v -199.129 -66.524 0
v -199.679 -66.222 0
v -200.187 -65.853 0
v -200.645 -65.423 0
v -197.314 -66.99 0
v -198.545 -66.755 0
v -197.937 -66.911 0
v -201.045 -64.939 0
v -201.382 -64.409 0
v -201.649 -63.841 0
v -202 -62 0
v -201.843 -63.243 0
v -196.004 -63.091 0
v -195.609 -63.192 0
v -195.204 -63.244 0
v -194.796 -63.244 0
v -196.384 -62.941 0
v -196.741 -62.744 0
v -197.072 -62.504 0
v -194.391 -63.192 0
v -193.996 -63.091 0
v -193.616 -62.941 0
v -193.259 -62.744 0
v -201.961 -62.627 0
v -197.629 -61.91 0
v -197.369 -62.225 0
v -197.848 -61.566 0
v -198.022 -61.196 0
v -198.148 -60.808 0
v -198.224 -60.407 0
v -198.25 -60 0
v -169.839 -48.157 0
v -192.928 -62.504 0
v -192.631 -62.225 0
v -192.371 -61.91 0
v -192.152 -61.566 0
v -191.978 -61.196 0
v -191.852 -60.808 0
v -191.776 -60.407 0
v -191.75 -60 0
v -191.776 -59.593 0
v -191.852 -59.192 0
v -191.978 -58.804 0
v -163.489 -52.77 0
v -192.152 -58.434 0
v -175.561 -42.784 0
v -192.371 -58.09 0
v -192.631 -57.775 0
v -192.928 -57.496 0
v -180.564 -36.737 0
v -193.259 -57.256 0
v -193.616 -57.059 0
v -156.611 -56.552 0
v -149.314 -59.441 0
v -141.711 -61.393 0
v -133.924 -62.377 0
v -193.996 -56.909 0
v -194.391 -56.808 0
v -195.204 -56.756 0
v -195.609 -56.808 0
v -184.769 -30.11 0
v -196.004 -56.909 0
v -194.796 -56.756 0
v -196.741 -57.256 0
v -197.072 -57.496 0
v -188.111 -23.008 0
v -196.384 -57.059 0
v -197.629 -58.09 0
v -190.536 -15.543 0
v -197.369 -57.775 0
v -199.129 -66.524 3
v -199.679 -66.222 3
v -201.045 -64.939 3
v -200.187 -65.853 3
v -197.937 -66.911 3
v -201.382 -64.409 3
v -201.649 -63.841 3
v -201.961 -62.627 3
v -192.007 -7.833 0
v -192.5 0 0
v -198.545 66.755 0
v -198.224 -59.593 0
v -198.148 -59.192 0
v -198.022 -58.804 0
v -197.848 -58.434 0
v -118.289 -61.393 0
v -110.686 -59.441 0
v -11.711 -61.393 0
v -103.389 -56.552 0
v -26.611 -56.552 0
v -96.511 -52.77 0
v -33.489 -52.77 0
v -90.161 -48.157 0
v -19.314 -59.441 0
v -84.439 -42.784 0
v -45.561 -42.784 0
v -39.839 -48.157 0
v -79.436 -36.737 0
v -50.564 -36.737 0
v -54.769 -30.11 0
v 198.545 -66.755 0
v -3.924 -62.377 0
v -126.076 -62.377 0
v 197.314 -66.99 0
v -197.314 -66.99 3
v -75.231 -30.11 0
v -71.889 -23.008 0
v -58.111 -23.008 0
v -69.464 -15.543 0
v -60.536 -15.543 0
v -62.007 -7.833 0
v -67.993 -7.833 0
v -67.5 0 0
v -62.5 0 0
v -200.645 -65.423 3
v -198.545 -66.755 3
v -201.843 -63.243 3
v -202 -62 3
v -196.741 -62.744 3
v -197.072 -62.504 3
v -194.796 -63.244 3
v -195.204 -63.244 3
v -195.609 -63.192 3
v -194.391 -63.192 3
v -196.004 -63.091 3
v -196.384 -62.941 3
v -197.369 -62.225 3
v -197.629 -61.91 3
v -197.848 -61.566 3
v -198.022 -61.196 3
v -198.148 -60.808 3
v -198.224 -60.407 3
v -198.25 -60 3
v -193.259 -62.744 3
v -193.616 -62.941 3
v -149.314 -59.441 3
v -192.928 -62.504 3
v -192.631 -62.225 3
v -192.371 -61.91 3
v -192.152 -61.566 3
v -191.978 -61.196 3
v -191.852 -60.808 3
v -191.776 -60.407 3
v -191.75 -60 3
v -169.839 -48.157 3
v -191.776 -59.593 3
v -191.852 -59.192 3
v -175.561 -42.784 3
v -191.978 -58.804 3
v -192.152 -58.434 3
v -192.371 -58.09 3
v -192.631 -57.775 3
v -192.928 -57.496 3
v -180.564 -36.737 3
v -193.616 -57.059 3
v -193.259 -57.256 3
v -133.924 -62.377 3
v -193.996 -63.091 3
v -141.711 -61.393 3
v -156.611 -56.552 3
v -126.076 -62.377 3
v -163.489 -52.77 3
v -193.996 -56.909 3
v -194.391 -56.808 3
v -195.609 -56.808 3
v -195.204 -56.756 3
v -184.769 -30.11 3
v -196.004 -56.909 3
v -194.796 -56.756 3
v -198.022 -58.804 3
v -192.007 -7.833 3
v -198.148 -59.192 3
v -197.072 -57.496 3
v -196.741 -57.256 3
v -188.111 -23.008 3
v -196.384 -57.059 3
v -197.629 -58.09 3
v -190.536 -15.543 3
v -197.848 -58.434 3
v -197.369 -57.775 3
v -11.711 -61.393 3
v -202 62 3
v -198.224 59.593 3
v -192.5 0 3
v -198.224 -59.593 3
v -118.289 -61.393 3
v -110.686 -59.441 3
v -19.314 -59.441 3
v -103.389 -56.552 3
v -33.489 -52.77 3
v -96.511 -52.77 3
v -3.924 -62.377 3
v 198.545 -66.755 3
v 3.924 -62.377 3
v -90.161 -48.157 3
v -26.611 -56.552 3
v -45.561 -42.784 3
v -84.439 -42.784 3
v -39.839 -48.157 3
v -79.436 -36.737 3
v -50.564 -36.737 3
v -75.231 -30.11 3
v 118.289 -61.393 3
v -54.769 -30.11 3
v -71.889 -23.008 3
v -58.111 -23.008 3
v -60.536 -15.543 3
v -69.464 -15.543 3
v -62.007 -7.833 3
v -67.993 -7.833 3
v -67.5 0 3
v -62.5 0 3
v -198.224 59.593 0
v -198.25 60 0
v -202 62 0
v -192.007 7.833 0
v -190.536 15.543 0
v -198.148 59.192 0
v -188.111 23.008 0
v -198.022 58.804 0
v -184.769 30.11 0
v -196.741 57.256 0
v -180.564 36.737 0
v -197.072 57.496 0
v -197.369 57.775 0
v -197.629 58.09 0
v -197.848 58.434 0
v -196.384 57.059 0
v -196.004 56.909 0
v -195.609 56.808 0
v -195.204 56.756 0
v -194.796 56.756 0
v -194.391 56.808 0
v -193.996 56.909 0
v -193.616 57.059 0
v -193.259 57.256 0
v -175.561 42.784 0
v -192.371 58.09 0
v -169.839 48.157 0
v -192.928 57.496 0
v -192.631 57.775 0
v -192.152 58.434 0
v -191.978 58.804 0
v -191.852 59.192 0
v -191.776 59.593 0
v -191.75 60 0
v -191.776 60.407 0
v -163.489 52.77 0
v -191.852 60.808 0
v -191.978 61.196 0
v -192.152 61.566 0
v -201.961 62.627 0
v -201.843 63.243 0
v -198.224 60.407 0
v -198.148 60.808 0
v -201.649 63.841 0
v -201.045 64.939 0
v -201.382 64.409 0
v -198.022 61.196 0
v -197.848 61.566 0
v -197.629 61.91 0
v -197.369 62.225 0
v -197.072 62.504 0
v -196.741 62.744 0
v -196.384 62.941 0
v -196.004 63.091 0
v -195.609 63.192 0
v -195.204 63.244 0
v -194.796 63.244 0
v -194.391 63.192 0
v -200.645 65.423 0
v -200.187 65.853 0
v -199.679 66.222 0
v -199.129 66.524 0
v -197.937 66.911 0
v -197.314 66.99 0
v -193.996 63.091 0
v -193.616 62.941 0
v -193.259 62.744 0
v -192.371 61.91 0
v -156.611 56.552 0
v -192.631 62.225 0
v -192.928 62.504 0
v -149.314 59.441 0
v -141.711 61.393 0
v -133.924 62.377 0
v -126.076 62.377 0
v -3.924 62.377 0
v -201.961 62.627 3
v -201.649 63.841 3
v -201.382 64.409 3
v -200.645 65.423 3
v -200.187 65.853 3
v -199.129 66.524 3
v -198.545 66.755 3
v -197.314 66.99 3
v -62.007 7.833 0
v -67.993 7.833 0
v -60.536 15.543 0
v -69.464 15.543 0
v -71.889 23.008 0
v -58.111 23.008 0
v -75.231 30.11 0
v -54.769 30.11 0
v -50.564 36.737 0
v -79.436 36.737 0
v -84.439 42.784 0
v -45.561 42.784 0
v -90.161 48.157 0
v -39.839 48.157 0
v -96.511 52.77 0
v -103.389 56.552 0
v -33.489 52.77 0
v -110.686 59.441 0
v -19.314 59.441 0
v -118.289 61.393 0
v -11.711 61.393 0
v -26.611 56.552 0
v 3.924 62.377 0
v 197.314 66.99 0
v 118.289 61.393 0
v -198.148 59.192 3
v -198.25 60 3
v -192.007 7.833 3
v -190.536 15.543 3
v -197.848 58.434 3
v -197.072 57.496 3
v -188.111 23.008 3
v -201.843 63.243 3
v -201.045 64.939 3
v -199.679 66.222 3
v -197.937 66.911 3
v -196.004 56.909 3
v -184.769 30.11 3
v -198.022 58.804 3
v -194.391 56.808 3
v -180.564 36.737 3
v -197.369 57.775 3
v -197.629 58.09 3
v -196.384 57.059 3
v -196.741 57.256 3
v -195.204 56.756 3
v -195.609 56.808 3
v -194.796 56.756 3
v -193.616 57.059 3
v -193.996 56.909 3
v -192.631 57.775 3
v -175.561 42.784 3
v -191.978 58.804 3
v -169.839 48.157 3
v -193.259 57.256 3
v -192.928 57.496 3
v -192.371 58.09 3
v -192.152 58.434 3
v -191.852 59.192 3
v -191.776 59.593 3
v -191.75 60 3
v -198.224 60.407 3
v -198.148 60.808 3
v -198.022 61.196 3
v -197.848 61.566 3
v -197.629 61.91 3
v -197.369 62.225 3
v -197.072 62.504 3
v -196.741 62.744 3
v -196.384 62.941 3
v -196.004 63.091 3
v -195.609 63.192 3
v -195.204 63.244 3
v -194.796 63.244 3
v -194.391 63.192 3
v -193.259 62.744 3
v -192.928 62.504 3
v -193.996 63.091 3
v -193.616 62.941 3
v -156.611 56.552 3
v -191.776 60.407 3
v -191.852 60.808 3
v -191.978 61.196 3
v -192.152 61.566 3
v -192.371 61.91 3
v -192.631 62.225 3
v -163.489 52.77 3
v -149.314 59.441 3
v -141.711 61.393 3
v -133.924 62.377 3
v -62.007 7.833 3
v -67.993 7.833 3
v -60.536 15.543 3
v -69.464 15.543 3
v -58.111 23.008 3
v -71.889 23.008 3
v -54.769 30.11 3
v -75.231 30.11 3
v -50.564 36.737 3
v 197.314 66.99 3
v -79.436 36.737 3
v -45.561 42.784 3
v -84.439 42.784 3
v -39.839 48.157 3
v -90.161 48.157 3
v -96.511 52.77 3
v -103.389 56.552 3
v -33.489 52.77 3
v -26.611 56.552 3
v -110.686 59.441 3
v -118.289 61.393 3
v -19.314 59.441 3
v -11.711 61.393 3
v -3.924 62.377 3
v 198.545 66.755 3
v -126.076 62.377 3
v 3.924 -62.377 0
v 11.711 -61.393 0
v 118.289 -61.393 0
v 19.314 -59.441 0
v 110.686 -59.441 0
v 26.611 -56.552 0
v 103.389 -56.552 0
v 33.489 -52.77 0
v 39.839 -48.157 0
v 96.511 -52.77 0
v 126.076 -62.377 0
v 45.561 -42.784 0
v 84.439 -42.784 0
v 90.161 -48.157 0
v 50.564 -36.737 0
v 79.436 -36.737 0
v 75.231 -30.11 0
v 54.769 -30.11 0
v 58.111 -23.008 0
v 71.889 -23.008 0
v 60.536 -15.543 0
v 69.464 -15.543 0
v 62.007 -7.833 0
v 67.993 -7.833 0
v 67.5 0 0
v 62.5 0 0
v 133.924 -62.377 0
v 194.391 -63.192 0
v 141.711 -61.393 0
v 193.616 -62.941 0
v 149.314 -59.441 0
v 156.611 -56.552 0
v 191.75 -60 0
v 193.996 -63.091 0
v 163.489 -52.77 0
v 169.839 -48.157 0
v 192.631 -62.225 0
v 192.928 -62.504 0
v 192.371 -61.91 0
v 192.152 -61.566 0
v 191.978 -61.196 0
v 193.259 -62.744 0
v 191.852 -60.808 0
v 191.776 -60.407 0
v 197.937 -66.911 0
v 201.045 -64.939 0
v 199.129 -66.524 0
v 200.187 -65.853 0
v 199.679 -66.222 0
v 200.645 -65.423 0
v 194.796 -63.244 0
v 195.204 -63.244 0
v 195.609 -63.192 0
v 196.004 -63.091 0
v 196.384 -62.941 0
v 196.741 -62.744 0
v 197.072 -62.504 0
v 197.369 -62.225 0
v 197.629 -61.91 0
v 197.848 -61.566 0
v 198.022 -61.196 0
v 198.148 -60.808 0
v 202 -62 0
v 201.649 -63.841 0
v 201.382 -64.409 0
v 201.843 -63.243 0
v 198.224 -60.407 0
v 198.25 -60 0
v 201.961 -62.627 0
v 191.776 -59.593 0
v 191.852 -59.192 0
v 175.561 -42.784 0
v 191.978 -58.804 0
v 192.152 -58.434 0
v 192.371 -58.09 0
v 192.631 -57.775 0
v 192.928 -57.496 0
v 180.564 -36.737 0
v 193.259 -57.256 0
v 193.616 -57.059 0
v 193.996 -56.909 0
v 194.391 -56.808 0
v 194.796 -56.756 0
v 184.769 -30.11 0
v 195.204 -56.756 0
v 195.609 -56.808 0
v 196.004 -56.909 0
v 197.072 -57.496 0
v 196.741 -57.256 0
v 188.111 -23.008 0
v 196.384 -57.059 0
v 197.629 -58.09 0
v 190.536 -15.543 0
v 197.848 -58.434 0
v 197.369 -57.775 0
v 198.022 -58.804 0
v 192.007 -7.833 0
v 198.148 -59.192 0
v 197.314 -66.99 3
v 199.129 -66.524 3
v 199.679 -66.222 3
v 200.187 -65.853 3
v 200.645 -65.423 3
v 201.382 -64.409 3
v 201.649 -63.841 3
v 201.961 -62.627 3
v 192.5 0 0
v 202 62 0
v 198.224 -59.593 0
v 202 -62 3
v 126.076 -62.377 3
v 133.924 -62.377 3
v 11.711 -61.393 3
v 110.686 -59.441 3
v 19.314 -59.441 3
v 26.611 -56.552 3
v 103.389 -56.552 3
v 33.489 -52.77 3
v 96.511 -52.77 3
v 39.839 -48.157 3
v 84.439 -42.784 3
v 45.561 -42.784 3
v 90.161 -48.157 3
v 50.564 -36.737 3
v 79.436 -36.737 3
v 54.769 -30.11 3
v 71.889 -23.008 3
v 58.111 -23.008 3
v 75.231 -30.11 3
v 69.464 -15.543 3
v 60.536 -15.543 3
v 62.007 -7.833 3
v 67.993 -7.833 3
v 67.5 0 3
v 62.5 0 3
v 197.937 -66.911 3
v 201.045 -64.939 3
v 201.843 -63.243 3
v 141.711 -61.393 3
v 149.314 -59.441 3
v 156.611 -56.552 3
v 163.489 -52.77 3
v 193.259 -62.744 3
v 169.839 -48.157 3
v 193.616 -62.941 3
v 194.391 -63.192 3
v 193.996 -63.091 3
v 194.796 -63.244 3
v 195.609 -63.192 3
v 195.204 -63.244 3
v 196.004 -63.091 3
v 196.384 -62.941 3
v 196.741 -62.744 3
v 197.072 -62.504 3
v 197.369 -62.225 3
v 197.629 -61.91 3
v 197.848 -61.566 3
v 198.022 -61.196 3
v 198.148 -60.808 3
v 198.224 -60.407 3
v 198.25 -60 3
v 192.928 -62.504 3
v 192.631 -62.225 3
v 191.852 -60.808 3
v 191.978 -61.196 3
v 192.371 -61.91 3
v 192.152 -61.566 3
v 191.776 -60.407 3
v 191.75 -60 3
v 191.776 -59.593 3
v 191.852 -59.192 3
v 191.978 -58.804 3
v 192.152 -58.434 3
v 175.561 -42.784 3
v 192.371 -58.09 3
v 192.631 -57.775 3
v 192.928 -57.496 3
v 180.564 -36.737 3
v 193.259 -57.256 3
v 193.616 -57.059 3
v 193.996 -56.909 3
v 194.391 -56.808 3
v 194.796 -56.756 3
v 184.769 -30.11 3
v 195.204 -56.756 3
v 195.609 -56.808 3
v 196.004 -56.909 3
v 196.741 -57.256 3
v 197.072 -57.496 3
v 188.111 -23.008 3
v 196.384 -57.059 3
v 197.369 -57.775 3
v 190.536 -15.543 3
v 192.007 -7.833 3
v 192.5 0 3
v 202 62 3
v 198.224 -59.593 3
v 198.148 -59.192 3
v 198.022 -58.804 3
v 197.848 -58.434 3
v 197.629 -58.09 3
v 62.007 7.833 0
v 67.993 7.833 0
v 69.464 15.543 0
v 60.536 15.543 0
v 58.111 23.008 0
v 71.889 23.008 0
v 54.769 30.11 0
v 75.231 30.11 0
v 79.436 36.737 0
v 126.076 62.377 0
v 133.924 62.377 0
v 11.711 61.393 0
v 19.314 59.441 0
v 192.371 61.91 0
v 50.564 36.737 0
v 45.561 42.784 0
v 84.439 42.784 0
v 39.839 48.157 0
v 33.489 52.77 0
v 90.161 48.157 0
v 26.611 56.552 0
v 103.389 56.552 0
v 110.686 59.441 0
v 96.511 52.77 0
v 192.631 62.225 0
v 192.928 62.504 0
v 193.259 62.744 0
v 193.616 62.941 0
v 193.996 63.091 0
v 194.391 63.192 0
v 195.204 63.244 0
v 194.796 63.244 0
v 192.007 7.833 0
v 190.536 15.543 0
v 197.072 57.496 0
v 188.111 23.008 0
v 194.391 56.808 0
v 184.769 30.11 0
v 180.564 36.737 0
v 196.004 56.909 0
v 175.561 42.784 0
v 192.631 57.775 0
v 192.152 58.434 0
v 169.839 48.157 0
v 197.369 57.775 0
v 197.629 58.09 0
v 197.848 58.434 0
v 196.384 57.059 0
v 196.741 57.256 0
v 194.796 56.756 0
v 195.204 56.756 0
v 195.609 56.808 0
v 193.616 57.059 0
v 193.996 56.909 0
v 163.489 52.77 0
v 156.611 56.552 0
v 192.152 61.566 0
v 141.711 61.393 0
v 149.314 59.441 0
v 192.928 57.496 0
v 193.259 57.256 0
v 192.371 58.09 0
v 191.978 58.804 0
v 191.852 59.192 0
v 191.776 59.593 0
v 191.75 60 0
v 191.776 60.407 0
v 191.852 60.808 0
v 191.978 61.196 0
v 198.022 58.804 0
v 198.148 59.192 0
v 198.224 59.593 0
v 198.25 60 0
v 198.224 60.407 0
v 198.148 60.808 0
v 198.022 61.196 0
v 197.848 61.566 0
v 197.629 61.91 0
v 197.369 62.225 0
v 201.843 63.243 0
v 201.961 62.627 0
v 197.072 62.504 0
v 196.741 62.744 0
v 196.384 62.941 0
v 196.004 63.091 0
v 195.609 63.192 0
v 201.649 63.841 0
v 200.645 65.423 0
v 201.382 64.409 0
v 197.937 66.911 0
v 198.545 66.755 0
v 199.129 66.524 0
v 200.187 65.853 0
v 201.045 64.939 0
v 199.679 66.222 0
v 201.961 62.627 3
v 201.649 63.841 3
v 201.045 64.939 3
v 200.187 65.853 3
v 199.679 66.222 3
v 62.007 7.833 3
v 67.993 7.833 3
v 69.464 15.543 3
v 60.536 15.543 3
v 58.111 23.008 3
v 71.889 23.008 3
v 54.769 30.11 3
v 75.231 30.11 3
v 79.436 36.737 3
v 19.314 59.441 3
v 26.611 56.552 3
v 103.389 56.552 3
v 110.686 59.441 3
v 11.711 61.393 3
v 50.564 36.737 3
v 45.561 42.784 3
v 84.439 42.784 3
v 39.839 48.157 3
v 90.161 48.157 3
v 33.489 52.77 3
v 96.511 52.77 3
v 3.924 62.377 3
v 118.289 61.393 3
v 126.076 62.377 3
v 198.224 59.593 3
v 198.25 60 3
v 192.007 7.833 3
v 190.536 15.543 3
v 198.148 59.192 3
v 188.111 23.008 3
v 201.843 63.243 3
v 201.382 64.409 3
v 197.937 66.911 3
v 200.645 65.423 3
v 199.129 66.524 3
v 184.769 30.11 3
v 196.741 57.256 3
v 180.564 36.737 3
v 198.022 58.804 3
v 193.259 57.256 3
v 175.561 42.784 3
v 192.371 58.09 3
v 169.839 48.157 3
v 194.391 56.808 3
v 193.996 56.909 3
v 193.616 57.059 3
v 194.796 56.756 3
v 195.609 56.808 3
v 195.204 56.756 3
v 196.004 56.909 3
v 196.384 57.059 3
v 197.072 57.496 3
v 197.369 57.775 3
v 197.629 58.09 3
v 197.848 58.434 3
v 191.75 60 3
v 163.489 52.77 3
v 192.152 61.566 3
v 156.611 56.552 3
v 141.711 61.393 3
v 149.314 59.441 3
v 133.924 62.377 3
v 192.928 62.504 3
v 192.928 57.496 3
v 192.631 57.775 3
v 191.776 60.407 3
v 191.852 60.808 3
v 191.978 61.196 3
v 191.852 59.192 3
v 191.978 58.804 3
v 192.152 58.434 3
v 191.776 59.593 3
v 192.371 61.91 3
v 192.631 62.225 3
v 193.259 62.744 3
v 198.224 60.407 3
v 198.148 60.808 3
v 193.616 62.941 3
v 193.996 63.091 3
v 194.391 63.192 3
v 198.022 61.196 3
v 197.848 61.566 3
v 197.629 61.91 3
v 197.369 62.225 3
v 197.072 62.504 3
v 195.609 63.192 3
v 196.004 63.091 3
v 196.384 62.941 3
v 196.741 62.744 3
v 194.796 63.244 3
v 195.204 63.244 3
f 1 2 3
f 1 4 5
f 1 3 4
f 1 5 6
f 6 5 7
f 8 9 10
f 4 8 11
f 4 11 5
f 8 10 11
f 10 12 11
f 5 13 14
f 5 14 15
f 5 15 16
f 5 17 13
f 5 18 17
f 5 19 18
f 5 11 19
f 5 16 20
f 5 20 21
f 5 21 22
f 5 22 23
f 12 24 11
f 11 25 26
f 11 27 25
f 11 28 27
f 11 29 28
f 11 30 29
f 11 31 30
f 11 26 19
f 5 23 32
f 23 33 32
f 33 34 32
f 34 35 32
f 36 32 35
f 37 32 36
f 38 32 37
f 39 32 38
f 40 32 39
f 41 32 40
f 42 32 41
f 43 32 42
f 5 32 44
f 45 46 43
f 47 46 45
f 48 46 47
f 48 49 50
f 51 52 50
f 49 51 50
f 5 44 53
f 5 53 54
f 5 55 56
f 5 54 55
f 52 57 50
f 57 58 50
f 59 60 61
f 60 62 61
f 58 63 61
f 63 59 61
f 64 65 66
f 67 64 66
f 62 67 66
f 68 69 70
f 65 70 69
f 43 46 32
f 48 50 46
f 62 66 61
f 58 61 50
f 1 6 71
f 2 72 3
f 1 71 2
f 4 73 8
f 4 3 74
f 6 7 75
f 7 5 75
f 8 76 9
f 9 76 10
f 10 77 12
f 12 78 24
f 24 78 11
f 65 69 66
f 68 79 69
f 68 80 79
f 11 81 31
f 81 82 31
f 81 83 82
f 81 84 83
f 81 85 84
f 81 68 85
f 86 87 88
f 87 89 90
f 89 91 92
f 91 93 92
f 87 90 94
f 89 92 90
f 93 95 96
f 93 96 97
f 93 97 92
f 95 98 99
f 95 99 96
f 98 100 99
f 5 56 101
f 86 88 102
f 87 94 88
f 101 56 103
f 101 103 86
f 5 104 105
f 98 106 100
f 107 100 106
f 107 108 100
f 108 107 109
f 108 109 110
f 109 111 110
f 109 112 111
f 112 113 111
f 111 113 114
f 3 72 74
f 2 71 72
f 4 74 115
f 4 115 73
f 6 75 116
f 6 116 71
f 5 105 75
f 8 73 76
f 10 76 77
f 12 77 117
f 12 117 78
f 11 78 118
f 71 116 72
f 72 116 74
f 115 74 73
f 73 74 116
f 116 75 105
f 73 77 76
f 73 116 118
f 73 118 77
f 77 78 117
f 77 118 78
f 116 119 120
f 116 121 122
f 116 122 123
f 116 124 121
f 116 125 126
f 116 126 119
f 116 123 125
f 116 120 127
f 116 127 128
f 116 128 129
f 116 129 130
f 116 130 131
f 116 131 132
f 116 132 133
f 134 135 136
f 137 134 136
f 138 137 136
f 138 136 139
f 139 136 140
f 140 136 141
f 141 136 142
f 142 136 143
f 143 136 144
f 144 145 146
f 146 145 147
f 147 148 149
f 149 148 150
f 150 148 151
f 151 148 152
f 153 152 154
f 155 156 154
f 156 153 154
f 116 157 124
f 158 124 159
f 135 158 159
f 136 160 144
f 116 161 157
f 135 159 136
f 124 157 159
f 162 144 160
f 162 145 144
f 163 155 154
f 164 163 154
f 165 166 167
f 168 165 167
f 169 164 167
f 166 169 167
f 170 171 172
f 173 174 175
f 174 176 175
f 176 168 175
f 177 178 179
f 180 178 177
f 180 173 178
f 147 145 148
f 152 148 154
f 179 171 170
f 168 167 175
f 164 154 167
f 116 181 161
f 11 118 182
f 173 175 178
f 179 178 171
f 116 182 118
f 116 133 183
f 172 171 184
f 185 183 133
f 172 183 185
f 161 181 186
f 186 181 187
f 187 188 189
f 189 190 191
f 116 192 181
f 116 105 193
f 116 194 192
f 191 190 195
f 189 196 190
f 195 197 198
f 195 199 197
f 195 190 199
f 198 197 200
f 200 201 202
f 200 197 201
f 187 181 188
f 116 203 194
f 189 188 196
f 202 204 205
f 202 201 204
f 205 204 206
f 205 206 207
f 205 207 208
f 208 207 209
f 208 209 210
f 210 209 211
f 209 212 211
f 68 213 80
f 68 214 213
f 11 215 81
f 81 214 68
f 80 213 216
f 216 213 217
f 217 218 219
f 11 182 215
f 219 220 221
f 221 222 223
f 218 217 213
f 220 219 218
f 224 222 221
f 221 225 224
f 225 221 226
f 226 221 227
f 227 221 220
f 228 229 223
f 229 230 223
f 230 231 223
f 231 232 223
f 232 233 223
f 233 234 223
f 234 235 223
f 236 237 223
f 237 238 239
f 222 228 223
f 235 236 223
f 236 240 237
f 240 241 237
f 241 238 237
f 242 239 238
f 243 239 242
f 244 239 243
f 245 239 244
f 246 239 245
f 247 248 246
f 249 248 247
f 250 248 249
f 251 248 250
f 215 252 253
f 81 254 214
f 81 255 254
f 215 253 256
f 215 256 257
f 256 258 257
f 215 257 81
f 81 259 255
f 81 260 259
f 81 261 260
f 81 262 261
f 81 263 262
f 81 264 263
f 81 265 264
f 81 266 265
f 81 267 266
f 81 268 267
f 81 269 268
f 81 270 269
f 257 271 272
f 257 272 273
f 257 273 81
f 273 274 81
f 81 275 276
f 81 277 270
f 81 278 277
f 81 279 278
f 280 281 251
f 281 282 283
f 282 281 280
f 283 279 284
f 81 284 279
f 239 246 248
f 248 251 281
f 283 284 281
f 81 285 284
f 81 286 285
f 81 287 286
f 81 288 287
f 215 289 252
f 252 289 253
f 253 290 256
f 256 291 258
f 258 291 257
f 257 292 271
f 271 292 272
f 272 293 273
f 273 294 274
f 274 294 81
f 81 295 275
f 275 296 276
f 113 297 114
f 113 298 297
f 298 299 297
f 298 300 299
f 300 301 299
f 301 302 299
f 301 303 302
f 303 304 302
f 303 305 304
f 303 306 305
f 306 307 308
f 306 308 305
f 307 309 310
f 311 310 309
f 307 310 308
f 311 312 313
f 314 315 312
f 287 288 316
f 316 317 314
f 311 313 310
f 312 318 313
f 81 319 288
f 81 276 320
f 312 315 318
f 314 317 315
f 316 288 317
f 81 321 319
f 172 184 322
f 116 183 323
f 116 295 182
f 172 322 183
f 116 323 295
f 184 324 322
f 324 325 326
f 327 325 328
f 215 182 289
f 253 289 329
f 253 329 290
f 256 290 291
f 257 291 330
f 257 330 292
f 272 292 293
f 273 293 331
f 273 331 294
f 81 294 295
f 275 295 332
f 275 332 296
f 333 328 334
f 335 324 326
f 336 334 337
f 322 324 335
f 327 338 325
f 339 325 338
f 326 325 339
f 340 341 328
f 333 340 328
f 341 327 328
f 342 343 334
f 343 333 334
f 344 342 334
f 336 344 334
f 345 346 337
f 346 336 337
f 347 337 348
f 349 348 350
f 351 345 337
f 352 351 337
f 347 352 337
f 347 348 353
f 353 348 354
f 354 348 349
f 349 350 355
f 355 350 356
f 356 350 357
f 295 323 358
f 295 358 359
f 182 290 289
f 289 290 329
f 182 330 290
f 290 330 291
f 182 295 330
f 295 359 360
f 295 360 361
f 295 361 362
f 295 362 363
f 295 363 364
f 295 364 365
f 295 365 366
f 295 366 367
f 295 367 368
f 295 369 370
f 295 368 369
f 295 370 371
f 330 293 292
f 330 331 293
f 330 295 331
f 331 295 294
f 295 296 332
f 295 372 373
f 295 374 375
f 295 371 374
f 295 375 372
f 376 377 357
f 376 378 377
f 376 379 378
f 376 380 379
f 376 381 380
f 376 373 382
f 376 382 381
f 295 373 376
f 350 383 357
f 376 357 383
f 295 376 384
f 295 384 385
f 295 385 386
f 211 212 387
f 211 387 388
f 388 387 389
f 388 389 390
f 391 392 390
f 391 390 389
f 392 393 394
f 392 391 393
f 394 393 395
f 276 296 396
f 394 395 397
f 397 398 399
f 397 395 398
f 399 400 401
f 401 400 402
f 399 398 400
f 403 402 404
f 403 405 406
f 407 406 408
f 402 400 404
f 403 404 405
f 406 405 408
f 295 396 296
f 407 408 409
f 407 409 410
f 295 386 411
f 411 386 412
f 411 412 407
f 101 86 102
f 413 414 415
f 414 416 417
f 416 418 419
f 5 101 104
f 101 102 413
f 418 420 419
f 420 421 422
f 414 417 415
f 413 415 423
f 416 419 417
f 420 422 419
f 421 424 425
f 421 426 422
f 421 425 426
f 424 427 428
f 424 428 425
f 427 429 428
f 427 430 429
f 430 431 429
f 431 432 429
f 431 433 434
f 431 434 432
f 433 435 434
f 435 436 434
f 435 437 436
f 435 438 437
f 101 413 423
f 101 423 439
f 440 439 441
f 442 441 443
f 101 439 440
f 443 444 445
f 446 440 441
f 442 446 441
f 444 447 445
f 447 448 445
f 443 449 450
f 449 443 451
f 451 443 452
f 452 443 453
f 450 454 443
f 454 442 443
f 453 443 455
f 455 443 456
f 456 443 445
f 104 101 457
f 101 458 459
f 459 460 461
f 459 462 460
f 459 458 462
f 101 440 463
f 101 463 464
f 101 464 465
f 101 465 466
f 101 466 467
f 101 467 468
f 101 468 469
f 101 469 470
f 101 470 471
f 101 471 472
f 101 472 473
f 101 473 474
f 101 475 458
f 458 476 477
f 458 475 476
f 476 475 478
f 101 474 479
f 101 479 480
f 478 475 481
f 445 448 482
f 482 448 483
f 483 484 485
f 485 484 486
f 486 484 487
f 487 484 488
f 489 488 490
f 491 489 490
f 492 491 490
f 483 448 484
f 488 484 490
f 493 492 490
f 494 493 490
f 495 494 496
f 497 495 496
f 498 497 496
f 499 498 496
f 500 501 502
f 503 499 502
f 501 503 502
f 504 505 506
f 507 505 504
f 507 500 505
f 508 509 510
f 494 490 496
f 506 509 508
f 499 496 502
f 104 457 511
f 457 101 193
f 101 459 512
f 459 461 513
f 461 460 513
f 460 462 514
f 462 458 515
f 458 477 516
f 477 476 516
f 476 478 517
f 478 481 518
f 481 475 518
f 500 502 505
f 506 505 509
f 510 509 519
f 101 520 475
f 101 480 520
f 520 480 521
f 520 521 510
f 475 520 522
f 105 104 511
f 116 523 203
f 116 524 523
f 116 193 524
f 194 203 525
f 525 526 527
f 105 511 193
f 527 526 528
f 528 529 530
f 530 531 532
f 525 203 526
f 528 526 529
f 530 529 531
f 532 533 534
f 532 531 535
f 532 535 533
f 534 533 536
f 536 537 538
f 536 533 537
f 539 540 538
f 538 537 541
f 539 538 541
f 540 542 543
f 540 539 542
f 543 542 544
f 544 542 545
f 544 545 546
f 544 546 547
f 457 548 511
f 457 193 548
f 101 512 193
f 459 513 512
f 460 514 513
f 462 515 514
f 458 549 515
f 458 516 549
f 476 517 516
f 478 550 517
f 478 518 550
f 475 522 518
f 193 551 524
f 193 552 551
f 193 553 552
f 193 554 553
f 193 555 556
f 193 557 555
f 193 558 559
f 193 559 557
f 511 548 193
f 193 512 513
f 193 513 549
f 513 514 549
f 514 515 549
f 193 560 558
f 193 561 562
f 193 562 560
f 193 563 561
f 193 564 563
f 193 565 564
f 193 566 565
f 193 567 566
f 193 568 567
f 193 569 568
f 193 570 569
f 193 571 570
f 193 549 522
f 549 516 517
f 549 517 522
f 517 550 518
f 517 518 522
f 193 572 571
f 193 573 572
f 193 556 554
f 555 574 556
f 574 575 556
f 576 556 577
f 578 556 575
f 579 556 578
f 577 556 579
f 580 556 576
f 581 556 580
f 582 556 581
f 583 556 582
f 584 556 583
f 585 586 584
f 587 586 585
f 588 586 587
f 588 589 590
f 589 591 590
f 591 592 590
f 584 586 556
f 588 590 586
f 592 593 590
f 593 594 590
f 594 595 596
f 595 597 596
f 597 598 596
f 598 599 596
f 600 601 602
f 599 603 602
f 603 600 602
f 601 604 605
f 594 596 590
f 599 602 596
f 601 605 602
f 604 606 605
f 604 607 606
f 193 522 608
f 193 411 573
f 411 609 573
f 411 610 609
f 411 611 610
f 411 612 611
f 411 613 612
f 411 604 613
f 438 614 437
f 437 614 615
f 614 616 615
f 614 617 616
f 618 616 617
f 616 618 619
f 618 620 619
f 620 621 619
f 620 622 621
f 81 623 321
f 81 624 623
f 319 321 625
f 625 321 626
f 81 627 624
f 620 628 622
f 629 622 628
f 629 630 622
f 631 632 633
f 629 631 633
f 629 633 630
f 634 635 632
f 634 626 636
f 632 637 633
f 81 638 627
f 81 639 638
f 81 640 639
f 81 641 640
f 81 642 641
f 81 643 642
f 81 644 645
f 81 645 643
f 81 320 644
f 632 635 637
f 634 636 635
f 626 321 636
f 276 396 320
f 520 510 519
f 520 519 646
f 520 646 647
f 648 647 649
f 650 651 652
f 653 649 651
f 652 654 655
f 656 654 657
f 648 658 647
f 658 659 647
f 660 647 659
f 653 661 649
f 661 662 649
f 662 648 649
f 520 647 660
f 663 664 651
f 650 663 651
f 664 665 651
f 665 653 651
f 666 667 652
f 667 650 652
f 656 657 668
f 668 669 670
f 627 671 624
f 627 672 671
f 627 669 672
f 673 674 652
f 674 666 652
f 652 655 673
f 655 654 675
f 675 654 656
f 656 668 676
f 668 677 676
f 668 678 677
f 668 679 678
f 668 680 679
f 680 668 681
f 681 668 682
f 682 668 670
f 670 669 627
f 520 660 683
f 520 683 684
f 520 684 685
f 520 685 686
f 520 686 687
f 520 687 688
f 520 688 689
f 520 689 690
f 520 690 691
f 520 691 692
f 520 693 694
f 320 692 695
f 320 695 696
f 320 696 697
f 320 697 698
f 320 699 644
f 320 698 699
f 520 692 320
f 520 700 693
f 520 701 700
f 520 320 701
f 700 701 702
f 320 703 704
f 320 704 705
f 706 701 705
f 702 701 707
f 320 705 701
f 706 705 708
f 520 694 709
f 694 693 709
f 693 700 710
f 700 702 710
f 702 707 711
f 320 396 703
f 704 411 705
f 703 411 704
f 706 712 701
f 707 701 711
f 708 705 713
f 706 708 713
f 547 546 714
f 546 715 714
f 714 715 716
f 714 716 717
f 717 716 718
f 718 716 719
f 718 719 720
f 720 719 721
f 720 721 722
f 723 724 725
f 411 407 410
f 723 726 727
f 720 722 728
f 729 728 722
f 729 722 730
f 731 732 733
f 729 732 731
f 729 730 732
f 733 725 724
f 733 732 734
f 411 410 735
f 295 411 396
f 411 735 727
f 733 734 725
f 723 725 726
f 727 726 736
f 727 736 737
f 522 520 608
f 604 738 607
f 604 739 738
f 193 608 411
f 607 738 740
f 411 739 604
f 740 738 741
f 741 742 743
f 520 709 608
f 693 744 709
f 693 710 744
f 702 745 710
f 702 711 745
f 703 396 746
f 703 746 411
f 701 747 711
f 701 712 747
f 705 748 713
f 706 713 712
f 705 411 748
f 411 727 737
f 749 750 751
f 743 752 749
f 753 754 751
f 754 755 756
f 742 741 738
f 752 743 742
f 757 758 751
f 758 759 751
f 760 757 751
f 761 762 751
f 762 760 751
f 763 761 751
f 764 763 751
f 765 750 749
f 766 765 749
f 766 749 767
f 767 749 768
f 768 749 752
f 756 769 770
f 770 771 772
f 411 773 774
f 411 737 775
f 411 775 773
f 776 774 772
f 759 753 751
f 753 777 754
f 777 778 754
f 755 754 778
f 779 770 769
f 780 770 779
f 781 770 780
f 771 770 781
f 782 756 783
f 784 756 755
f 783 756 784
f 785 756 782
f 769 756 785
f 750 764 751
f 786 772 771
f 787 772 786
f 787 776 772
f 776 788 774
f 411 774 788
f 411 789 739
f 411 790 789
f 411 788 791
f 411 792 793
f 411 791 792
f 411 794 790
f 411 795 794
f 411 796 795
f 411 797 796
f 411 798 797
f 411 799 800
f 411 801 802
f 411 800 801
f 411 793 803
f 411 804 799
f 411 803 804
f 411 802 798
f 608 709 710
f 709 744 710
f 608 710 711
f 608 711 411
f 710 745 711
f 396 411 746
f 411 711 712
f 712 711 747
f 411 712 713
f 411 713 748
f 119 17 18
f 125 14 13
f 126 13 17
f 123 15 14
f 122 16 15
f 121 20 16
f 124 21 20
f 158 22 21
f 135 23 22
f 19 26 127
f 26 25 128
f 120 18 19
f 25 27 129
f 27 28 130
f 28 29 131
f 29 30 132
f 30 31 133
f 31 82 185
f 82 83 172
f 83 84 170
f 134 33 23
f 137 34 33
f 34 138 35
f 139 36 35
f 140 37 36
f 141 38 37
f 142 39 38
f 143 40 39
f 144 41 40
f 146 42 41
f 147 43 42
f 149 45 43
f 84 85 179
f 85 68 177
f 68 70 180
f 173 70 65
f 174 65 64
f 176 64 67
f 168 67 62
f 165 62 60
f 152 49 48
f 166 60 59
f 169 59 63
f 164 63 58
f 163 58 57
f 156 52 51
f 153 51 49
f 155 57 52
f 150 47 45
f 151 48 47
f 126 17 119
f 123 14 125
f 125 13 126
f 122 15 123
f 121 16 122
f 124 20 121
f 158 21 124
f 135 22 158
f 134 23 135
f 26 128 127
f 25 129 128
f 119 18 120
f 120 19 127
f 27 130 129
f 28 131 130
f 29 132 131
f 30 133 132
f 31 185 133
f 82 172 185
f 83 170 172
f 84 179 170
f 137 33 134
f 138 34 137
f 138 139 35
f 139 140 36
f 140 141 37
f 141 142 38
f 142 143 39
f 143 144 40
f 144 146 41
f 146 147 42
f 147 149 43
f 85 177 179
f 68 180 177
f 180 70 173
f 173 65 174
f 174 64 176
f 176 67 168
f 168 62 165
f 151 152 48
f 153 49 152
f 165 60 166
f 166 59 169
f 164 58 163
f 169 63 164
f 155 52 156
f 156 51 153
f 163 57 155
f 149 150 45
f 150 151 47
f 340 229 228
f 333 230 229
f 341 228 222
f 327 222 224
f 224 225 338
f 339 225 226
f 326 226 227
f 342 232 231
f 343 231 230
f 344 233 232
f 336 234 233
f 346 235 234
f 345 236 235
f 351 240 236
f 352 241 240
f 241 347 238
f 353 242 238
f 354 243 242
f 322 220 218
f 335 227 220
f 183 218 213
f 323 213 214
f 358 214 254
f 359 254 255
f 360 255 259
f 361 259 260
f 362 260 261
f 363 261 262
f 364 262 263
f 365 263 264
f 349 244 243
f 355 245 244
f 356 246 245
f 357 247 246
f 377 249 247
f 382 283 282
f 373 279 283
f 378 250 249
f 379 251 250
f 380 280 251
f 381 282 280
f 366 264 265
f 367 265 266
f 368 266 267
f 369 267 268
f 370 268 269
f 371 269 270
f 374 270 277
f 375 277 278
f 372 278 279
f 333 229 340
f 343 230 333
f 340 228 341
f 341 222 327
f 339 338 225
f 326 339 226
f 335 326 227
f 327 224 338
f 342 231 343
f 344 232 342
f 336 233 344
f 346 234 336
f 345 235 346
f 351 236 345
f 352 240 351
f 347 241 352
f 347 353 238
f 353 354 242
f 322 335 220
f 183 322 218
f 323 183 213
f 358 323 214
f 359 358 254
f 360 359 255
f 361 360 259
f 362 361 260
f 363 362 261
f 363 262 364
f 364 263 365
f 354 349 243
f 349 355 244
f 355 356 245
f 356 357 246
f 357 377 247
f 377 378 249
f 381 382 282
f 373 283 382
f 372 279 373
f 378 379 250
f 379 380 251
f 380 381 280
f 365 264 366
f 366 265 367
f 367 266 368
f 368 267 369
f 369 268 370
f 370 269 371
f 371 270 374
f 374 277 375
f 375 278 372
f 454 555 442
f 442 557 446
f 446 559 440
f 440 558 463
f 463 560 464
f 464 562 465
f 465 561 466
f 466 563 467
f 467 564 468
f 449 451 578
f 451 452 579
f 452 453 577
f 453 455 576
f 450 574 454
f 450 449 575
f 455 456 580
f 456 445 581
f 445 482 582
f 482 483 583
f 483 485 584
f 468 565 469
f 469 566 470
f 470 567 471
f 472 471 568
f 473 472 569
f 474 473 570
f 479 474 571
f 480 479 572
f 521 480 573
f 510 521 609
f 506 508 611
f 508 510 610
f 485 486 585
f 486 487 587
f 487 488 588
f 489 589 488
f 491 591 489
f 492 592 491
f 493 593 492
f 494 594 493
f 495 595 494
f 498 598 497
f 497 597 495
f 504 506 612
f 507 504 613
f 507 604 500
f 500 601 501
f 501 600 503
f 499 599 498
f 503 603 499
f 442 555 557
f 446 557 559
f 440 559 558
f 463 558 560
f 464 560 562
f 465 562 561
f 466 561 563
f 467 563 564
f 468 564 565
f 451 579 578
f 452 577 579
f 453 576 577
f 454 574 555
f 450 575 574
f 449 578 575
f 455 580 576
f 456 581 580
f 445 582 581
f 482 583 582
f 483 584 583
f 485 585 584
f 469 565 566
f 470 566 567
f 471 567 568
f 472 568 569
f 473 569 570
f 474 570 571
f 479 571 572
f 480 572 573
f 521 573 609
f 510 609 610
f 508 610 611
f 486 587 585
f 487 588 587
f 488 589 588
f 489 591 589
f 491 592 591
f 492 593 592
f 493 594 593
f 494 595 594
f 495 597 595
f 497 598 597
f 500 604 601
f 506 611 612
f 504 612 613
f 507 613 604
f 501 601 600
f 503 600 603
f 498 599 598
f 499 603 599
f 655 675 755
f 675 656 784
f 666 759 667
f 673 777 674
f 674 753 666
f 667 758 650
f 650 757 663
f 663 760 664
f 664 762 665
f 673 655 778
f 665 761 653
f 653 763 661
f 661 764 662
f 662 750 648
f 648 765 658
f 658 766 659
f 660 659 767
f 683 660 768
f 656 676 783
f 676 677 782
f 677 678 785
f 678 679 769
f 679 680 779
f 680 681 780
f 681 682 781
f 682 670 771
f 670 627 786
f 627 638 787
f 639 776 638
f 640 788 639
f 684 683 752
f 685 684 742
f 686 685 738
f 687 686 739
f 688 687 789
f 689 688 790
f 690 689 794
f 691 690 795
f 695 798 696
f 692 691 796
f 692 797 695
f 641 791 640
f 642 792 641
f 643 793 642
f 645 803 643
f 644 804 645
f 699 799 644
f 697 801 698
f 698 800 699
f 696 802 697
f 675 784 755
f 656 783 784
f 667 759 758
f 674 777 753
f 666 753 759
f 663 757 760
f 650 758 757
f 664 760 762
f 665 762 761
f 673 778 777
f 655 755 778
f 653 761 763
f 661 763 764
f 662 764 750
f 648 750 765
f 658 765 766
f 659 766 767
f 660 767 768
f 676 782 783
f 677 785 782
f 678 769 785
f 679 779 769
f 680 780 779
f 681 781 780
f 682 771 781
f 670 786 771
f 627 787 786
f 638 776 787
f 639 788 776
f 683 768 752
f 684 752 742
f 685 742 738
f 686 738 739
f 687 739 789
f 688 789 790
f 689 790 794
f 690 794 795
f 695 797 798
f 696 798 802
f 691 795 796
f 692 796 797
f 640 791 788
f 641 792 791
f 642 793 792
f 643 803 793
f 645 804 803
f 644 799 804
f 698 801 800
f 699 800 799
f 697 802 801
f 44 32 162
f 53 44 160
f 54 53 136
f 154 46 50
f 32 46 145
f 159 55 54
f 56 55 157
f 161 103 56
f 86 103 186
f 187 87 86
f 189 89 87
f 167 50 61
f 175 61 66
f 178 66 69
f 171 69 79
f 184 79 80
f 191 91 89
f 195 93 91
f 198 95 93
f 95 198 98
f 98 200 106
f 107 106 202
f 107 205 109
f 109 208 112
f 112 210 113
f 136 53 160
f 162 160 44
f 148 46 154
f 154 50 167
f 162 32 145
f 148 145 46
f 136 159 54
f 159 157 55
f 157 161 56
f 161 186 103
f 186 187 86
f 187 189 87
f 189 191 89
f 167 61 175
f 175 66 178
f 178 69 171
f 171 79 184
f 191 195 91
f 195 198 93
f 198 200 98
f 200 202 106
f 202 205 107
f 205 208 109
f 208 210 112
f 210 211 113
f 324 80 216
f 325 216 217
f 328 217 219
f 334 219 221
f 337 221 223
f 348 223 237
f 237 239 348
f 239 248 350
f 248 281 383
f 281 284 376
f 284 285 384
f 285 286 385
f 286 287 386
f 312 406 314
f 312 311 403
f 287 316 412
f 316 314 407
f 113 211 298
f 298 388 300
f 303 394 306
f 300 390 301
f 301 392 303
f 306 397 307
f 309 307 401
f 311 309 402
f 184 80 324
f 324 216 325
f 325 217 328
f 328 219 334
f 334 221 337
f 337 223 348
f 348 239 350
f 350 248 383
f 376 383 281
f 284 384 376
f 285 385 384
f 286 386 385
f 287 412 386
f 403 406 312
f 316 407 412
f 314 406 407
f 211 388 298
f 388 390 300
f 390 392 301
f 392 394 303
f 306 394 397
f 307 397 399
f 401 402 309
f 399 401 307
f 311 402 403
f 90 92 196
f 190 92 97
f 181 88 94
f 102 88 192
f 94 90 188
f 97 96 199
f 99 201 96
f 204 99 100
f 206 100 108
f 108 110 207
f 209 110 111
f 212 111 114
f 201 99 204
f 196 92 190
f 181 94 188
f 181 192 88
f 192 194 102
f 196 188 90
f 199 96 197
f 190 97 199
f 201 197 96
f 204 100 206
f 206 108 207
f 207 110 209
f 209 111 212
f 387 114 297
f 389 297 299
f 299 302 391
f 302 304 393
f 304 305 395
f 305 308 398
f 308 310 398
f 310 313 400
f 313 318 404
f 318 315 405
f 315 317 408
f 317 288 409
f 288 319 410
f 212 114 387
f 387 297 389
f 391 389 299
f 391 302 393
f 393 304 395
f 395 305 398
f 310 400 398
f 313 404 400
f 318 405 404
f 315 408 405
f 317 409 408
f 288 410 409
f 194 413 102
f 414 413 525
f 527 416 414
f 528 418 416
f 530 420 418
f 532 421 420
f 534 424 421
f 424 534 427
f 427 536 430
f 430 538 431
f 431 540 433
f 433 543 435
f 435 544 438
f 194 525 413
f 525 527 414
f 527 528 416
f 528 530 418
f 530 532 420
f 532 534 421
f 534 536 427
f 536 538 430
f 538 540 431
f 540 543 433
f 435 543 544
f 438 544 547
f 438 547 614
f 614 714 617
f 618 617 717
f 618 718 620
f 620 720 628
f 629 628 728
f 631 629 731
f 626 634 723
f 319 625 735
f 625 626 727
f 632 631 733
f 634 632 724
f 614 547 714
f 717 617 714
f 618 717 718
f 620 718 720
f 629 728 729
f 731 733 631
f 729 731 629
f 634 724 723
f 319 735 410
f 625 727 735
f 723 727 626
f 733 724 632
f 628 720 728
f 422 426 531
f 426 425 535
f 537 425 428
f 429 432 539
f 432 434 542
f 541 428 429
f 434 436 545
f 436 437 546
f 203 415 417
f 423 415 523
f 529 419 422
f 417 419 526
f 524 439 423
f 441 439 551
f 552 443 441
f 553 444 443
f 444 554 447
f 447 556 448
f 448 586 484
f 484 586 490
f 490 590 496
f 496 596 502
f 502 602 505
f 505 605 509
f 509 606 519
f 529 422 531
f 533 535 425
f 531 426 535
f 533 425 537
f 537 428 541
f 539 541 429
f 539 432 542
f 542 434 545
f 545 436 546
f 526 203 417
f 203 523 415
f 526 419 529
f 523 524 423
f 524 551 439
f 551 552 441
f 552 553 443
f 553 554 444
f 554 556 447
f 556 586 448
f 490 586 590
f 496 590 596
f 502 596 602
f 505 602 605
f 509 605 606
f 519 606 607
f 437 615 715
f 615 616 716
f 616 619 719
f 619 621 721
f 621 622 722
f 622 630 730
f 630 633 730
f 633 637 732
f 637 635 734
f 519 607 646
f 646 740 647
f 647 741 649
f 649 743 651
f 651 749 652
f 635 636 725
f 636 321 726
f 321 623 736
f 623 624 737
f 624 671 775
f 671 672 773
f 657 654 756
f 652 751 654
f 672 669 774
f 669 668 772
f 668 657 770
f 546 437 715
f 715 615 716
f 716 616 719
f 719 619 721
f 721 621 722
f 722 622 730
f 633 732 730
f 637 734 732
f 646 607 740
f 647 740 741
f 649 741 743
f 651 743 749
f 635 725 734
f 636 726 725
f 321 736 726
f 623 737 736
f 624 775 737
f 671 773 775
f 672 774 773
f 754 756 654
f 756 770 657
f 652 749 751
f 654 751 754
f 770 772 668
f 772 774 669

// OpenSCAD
$fn = 50;

difference() {
	union() {
		hull() {
			translate(v = [-197.0, 62.0, 0]) {
				cylinder(h = 3, r = 5);
			}
			translate(v = [197.0, 62.0, 0]) {
				cylinder(h = 3, r = 5);
			}
			translate(v = [-197.0, -62.0, 0]) {
				cylinder(h = 3, r = 5);
			}
			translate(v = [197.0, -62.0, 0]) {
				cylinder(h = 3, r = 5);
			}
		}
	}
	union() {
		translate(v = [-195.0, -60.0, -100.0]) {
			cylinder(h = 200, r = 3.25);
		}
		translate(v = [-195.0, 60.0, -100.0]) {
			cylinder(h = 200, r = 3.25);
		}
		translate(v = [195.0, -60.0, -100.0]) {
			cylinder(h = 200, r = 3.25);
		}
		translate(v = [195.0, 60.0, -100.0]) {
			cylinder(h = 200, r = 3.25);
		}
		translate(v = [-195.0, -60.0, -100.0]) {
			cylinder(h = 200, r = 1.8);
		}
		translate(v = [-195.0, 60.0, -100.0]) {
			cylinder(h = 200, r = 1.8);
		}
		translate(v = [195.0, -60.0, -100.0]) {
			cylinder(h = 200, r = 1.8);
		}
		translate(v = [195.0, 60.0, -100.0]) {
			cylinder(h = 200, r = 1.8);
		}
		translate(v = [-130.0, 0, 0.0]) {
			cylinder(h = 3, r = 62.5);
		}
		cylinder(h = 3, r = 62.5);
		translate(v = [130.0, 0, 0.0]) {
			cylinder(h = 3, r = 62.5);
		}
	}
}
